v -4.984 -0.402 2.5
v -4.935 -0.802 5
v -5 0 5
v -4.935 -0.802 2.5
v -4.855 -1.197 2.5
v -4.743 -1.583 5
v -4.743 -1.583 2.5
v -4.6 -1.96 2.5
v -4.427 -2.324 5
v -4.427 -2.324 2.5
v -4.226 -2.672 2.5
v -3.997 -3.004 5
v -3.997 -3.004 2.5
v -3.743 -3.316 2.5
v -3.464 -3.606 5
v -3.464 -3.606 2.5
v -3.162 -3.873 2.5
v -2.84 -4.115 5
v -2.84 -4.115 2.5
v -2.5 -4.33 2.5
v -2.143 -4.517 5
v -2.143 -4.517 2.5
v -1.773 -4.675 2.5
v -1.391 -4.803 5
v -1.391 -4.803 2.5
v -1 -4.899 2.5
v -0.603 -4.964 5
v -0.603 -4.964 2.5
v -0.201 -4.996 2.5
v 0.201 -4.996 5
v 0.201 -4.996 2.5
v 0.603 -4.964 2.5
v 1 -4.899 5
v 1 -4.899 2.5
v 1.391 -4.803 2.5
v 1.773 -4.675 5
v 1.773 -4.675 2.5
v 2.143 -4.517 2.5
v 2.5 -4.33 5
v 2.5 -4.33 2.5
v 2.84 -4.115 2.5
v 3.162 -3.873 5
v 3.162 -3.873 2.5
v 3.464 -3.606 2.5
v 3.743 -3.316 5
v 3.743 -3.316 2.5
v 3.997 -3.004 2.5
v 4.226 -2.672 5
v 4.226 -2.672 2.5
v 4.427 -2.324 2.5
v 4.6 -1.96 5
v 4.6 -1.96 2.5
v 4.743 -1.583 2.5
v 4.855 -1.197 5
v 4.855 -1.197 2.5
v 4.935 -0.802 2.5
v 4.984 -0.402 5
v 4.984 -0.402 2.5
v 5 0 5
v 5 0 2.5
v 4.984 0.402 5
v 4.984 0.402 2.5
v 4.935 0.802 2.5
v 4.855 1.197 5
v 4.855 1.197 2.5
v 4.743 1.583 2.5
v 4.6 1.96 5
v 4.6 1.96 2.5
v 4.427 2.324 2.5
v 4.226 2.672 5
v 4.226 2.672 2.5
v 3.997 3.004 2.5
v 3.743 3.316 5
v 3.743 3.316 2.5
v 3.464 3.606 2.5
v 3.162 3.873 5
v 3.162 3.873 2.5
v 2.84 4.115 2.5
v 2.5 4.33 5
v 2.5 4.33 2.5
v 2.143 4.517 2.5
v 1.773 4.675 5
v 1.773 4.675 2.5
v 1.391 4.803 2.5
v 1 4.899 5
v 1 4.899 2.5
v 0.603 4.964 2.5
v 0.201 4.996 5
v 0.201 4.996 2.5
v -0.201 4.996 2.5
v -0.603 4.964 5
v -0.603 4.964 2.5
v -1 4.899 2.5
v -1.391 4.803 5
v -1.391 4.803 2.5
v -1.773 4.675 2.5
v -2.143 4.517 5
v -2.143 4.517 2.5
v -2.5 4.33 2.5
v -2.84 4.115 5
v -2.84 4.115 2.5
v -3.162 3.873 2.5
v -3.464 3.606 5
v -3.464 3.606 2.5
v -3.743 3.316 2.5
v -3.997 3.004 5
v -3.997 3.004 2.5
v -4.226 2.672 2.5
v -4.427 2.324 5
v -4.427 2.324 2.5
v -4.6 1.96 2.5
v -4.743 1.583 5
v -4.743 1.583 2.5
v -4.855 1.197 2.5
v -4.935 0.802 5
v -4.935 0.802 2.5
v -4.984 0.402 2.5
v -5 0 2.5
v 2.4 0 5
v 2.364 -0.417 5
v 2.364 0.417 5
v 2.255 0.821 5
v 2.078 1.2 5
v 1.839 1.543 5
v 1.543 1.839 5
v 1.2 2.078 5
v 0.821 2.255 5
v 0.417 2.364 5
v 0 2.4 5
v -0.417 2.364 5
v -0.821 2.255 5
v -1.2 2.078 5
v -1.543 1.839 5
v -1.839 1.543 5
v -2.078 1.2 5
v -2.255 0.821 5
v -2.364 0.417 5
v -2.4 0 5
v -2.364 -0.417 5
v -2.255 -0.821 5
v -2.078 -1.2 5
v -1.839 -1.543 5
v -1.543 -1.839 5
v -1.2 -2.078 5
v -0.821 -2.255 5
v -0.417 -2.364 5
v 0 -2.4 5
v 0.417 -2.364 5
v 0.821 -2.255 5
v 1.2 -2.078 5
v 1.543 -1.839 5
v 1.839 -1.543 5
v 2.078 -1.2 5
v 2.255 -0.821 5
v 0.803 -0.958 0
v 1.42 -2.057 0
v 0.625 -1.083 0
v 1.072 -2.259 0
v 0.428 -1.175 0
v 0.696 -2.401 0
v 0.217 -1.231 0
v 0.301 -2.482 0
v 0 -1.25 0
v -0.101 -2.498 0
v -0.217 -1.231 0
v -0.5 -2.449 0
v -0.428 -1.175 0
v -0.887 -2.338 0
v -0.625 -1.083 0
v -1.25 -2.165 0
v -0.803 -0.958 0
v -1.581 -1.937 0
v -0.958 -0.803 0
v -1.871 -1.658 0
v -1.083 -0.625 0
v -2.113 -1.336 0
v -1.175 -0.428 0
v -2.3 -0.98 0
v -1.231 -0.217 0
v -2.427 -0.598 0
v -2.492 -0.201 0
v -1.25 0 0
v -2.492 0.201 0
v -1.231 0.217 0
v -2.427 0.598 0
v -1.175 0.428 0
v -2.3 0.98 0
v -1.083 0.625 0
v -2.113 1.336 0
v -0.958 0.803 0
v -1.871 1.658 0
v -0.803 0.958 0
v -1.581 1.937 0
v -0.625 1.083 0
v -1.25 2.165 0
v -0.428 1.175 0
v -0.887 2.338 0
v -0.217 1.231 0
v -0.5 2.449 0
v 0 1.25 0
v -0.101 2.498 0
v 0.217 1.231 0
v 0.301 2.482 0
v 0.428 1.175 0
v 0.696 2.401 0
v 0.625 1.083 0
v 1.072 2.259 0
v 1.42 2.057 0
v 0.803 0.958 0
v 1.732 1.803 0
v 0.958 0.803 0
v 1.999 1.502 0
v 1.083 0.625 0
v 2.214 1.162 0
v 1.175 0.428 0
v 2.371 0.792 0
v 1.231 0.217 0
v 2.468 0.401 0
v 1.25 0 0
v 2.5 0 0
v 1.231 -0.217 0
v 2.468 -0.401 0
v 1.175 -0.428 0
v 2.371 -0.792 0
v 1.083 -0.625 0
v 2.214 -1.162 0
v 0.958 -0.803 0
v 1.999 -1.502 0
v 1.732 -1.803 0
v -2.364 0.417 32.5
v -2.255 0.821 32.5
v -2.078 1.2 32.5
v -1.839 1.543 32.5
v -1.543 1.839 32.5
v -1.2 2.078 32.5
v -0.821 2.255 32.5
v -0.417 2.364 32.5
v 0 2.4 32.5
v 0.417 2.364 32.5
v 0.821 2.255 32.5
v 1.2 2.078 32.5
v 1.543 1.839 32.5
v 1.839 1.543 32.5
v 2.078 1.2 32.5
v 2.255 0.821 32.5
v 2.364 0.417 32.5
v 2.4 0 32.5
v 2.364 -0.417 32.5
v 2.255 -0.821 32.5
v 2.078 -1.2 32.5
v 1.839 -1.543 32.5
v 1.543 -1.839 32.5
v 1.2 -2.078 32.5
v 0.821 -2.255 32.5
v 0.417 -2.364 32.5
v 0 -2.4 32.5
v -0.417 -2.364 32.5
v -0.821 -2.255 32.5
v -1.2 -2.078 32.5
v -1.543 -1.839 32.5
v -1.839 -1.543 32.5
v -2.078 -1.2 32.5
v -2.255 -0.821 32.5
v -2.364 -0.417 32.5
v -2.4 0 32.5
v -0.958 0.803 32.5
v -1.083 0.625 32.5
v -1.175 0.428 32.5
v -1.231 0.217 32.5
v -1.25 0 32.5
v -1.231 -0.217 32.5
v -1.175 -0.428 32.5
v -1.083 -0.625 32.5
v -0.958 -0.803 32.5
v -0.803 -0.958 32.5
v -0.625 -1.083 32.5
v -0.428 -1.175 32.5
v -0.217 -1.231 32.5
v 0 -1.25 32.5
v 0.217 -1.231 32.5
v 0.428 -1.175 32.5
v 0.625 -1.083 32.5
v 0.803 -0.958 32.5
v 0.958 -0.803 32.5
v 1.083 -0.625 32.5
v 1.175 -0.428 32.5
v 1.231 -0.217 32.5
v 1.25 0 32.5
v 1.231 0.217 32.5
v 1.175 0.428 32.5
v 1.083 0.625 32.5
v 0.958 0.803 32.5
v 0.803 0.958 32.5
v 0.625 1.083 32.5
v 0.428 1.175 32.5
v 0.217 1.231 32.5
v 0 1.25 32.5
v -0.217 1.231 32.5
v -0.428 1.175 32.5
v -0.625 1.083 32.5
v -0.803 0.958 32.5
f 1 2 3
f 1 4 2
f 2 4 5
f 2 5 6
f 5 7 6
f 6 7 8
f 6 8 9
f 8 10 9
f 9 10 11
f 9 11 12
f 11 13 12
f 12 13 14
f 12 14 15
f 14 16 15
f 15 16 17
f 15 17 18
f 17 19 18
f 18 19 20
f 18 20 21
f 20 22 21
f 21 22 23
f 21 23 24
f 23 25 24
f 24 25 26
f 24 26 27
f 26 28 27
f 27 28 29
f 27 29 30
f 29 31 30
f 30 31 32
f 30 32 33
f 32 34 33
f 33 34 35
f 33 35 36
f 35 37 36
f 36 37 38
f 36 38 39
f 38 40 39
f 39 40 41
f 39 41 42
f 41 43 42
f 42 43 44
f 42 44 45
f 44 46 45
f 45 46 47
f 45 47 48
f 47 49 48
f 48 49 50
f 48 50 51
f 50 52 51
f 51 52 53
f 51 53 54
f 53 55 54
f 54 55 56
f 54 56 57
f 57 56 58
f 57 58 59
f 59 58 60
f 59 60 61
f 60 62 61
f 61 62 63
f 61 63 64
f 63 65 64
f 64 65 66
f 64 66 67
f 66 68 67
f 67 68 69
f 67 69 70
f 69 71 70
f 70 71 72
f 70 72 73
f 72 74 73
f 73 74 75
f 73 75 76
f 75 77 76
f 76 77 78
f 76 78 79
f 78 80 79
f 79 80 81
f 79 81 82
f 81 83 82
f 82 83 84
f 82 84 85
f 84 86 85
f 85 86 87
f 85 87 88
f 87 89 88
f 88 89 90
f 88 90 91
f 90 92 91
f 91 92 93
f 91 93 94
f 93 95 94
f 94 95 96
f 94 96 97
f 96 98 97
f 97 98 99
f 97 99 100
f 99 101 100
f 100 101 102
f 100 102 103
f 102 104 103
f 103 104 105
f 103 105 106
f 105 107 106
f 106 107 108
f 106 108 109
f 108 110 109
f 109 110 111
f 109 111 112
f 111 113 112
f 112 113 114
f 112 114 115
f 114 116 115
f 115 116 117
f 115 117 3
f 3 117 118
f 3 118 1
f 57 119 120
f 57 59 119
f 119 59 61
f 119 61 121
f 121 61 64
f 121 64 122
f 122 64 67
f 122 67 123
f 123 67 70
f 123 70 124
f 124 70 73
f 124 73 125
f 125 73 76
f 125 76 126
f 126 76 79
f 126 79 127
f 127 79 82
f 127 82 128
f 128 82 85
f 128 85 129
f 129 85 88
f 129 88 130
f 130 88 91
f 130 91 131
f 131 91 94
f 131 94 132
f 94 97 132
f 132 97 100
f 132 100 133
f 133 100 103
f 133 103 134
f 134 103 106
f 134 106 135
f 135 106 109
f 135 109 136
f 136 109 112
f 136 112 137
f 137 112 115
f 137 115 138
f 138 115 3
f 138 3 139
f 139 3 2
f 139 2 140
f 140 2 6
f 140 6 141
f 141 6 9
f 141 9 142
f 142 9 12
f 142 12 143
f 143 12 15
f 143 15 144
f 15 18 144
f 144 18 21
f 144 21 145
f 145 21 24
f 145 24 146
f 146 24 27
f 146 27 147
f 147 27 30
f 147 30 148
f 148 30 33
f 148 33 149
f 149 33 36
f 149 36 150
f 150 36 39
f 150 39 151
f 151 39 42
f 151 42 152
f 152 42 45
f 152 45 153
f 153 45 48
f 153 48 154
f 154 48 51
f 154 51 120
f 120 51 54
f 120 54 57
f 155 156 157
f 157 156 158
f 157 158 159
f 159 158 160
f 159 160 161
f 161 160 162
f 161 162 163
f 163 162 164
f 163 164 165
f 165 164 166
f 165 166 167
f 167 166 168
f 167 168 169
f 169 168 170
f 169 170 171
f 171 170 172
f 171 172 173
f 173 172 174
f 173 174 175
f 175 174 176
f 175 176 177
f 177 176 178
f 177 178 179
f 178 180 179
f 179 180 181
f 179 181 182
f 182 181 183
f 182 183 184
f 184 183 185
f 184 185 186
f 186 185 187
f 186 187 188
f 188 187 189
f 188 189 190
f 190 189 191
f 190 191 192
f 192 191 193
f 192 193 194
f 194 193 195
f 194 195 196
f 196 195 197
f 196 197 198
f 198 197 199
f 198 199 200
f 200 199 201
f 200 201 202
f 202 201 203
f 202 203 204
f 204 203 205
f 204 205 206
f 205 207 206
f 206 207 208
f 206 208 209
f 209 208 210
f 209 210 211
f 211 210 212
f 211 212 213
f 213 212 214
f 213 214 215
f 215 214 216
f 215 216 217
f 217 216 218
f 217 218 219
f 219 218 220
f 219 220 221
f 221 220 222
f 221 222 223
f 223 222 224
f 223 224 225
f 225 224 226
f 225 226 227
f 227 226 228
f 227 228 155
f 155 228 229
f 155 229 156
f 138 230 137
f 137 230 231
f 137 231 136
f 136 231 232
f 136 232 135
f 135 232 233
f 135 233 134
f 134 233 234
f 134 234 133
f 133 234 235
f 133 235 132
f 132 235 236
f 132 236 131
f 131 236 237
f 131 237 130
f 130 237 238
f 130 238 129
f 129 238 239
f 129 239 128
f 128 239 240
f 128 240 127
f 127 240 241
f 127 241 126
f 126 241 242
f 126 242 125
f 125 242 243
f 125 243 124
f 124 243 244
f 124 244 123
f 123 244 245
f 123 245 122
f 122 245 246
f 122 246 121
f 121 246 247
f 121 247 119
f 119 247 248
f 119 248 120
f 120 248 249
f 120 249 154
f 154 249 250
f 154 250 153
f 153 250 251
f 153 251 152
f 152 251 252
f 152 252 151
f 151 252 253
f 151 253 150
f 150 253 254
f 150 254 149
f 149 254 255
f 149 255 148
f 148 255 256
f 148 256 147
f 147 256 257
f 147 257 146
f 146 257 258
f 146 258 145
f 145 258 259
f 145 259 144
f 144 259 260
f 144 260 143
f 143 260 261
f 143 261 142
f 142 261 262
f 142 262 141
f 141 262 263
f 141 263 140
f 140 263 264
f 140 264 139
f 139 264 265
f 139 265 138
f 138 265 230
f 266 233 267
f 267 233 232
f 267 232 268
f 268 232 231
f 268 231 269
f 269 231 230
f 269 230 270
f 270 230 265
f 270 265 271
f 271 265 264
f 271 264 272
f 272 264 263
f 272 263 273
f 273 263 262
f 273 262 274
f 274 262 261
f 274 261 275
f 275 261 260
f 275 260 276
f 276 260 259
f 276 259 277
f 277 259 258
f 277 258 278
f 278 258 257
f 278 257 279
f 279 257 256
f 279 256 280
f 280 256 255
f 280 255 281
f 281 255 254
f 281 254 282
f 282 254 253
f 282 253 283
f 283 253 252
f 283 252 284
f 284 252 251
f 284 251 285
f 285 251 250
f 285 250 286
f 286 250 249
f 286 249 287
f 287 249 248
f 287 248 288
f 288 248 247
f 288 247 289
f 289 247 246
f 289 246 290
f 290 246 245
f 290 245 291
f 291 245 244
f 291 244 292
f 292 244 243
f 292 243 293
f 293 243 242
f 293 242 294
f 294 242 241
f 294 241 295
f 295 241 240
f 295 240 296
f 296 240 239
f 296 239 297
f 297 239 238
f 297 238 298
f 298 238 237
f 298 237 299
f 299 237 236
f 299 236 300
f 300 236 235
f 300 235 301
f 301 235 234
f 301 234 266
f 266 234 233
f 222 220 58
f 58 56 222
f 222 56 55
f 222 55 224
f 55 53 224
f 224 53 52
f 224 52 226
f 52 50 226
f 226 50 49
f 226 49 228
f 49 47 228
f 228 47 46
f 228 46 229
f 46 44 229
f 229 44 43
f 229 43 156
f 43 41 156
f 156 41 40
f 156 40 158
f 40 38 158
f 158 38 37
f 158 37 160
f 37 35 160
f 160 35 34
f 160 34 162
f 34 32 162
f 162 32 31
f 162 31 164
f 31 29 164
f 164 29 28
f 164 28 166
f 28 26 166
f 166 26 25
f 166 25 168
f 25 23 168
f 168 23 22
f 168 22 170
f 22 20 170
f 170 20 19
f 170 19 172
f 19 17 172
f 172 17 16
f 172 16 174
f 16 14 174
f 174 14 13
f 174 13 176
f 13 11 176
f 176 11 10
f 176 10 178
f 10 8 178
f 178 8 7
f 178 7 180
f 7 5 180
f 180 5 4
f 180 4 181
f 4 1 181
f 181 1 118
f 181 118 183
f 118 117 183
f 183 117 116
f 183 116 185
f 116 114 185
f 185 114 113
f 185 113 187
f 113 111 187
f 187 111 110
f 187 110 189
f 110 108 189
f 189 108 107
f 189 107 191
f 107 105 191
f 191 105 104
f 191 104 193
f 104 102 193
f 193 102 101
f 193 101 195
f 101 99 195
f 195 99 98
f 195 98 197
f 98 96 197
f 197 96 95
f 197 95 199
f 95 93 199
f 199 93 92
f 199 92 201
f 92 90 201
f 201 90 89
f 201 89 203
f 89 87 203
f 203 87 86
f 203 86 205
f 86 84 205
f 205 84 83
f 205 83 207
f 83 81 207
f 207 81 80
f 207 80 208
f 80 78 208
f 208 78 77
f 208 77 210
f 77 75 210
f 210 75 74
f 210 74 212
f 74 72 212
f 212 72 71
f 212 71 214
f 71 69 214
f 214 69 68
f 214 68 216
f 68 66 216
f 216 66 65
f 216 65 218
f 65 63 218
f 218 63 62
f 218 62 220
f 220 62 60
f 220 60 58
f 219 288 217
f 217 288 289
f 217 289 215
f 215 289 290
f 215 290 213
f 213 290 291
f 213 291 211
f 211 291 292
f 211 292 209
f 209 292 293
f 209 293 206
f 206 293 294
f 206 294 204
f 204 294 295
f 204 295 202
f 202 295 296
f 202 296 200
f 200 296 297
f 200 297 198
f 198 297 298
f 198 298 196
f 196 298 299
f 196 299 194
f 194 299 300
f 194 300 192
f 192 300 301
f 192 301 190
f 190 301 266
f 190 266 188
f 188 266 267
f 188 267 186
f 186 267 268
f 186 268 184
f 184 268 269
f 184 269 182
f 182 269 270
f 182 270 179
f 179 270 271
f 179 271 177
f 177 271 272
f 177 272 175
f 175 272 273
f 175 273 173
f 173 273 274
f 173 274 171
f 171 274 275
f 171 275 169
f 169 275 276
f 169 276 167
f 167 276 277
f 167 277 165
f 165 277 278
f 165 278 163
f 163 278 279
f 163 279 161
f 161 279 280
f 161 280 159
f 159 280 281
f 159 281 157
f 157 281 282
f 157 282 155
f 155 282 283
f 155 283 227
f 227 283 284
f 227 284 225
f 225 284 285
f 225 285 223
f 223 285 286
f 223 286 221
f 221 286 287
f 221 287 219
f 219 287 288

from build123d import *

# Parameters (mm, degrees)
SKETCH1_R           = 5
BOSS_EXTRUDE1_DEPTH = 5
SKETCH2_R           = 2.4
BOSS_EXTRUDE2_DEPTH = 27.5
CHAMFER1_SIZE       = 2.5
SKETCH3_R           = 1.25
CUT_EXTRUDE1_DEPTH  = 34.260336739


with BuildPart() as part:
    # Sketch1 → Boss-Extrude1 (new body)
    with BuildSketch(Plane.XY):
        Circle(SKETCH1_R)
    extrude(amount=BOSS_EXTRUDE1_DEPTH)

    # Sketch2 → Boss-Extrude2 (add)
    with BuildSketch(Plane.XY.offset(5)):
        Circle(SKETCH2_R)
    extrude(amount=BOSS_EXTRUDE2_DEPTH)

    # Chamfer1
    chamfer1_edges = [part.edges().sort_by_distance(p)[0] for p in [
        (-5, 0, 0),
    ]]
    chamfer(chamfer1_edges, length=CHAMFER1_SIZE)

    # Sketch3 → Cut-Extrude1 (cut, through all)
    with BuildSketch(Plane.XY.offset(32.5)):
        Circle(SKETCH3_R)
    extrude(amount=-CUT_EXTRUDE1_DEPTH, mode=Mode.SUBTRACT)


solid = part.part
